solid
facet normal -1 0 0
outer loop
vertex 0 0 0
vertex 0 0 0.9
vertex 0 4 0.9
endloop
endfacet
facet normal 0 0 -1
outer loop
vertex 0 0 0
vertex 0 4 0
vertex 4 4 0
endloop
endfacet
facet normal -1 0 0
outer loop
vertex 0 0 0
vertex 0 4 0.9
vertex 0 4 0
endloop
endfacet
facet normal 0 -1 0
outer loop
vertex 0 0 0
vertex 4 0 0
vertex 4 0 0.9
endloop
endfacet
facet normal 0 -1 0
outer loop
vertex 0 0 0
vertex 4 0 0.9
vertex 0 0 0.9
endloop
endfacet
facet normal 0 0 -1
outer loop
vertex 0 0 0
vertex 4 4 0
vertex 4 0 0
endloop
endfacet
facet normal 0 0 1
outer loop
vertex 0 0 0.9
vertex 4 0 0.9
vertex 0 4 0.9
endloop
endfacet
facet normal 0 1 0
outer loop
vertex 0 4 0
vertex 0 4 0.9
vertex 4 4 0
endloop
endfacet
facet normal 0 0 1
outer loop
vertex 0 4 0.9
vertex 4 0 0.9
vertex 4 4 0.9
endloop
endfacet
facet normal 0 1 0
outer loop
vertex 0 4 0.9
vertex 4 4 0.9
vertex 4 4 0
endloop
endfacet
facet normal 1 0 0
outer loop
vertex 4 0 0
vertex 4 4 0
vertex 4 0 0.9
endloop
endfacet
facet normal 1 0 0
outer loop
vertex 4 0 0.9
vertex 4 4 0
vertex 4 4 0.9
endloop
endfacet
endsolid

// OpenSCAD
/* Warning, this is a very basic generator with a lot of approximation 
input data : [VQFN, RGB, 4x4x0.9mm, 18, , A, C04-21382A]
generated by com.zoubworld.electronics.cad.model3d.Basic
Date : Sun Feb 15 10:50:49 CET 2026
*/

//body
color("black")
translate([0,0,0])
cube([4.0,4.0,0.9], center=false);
